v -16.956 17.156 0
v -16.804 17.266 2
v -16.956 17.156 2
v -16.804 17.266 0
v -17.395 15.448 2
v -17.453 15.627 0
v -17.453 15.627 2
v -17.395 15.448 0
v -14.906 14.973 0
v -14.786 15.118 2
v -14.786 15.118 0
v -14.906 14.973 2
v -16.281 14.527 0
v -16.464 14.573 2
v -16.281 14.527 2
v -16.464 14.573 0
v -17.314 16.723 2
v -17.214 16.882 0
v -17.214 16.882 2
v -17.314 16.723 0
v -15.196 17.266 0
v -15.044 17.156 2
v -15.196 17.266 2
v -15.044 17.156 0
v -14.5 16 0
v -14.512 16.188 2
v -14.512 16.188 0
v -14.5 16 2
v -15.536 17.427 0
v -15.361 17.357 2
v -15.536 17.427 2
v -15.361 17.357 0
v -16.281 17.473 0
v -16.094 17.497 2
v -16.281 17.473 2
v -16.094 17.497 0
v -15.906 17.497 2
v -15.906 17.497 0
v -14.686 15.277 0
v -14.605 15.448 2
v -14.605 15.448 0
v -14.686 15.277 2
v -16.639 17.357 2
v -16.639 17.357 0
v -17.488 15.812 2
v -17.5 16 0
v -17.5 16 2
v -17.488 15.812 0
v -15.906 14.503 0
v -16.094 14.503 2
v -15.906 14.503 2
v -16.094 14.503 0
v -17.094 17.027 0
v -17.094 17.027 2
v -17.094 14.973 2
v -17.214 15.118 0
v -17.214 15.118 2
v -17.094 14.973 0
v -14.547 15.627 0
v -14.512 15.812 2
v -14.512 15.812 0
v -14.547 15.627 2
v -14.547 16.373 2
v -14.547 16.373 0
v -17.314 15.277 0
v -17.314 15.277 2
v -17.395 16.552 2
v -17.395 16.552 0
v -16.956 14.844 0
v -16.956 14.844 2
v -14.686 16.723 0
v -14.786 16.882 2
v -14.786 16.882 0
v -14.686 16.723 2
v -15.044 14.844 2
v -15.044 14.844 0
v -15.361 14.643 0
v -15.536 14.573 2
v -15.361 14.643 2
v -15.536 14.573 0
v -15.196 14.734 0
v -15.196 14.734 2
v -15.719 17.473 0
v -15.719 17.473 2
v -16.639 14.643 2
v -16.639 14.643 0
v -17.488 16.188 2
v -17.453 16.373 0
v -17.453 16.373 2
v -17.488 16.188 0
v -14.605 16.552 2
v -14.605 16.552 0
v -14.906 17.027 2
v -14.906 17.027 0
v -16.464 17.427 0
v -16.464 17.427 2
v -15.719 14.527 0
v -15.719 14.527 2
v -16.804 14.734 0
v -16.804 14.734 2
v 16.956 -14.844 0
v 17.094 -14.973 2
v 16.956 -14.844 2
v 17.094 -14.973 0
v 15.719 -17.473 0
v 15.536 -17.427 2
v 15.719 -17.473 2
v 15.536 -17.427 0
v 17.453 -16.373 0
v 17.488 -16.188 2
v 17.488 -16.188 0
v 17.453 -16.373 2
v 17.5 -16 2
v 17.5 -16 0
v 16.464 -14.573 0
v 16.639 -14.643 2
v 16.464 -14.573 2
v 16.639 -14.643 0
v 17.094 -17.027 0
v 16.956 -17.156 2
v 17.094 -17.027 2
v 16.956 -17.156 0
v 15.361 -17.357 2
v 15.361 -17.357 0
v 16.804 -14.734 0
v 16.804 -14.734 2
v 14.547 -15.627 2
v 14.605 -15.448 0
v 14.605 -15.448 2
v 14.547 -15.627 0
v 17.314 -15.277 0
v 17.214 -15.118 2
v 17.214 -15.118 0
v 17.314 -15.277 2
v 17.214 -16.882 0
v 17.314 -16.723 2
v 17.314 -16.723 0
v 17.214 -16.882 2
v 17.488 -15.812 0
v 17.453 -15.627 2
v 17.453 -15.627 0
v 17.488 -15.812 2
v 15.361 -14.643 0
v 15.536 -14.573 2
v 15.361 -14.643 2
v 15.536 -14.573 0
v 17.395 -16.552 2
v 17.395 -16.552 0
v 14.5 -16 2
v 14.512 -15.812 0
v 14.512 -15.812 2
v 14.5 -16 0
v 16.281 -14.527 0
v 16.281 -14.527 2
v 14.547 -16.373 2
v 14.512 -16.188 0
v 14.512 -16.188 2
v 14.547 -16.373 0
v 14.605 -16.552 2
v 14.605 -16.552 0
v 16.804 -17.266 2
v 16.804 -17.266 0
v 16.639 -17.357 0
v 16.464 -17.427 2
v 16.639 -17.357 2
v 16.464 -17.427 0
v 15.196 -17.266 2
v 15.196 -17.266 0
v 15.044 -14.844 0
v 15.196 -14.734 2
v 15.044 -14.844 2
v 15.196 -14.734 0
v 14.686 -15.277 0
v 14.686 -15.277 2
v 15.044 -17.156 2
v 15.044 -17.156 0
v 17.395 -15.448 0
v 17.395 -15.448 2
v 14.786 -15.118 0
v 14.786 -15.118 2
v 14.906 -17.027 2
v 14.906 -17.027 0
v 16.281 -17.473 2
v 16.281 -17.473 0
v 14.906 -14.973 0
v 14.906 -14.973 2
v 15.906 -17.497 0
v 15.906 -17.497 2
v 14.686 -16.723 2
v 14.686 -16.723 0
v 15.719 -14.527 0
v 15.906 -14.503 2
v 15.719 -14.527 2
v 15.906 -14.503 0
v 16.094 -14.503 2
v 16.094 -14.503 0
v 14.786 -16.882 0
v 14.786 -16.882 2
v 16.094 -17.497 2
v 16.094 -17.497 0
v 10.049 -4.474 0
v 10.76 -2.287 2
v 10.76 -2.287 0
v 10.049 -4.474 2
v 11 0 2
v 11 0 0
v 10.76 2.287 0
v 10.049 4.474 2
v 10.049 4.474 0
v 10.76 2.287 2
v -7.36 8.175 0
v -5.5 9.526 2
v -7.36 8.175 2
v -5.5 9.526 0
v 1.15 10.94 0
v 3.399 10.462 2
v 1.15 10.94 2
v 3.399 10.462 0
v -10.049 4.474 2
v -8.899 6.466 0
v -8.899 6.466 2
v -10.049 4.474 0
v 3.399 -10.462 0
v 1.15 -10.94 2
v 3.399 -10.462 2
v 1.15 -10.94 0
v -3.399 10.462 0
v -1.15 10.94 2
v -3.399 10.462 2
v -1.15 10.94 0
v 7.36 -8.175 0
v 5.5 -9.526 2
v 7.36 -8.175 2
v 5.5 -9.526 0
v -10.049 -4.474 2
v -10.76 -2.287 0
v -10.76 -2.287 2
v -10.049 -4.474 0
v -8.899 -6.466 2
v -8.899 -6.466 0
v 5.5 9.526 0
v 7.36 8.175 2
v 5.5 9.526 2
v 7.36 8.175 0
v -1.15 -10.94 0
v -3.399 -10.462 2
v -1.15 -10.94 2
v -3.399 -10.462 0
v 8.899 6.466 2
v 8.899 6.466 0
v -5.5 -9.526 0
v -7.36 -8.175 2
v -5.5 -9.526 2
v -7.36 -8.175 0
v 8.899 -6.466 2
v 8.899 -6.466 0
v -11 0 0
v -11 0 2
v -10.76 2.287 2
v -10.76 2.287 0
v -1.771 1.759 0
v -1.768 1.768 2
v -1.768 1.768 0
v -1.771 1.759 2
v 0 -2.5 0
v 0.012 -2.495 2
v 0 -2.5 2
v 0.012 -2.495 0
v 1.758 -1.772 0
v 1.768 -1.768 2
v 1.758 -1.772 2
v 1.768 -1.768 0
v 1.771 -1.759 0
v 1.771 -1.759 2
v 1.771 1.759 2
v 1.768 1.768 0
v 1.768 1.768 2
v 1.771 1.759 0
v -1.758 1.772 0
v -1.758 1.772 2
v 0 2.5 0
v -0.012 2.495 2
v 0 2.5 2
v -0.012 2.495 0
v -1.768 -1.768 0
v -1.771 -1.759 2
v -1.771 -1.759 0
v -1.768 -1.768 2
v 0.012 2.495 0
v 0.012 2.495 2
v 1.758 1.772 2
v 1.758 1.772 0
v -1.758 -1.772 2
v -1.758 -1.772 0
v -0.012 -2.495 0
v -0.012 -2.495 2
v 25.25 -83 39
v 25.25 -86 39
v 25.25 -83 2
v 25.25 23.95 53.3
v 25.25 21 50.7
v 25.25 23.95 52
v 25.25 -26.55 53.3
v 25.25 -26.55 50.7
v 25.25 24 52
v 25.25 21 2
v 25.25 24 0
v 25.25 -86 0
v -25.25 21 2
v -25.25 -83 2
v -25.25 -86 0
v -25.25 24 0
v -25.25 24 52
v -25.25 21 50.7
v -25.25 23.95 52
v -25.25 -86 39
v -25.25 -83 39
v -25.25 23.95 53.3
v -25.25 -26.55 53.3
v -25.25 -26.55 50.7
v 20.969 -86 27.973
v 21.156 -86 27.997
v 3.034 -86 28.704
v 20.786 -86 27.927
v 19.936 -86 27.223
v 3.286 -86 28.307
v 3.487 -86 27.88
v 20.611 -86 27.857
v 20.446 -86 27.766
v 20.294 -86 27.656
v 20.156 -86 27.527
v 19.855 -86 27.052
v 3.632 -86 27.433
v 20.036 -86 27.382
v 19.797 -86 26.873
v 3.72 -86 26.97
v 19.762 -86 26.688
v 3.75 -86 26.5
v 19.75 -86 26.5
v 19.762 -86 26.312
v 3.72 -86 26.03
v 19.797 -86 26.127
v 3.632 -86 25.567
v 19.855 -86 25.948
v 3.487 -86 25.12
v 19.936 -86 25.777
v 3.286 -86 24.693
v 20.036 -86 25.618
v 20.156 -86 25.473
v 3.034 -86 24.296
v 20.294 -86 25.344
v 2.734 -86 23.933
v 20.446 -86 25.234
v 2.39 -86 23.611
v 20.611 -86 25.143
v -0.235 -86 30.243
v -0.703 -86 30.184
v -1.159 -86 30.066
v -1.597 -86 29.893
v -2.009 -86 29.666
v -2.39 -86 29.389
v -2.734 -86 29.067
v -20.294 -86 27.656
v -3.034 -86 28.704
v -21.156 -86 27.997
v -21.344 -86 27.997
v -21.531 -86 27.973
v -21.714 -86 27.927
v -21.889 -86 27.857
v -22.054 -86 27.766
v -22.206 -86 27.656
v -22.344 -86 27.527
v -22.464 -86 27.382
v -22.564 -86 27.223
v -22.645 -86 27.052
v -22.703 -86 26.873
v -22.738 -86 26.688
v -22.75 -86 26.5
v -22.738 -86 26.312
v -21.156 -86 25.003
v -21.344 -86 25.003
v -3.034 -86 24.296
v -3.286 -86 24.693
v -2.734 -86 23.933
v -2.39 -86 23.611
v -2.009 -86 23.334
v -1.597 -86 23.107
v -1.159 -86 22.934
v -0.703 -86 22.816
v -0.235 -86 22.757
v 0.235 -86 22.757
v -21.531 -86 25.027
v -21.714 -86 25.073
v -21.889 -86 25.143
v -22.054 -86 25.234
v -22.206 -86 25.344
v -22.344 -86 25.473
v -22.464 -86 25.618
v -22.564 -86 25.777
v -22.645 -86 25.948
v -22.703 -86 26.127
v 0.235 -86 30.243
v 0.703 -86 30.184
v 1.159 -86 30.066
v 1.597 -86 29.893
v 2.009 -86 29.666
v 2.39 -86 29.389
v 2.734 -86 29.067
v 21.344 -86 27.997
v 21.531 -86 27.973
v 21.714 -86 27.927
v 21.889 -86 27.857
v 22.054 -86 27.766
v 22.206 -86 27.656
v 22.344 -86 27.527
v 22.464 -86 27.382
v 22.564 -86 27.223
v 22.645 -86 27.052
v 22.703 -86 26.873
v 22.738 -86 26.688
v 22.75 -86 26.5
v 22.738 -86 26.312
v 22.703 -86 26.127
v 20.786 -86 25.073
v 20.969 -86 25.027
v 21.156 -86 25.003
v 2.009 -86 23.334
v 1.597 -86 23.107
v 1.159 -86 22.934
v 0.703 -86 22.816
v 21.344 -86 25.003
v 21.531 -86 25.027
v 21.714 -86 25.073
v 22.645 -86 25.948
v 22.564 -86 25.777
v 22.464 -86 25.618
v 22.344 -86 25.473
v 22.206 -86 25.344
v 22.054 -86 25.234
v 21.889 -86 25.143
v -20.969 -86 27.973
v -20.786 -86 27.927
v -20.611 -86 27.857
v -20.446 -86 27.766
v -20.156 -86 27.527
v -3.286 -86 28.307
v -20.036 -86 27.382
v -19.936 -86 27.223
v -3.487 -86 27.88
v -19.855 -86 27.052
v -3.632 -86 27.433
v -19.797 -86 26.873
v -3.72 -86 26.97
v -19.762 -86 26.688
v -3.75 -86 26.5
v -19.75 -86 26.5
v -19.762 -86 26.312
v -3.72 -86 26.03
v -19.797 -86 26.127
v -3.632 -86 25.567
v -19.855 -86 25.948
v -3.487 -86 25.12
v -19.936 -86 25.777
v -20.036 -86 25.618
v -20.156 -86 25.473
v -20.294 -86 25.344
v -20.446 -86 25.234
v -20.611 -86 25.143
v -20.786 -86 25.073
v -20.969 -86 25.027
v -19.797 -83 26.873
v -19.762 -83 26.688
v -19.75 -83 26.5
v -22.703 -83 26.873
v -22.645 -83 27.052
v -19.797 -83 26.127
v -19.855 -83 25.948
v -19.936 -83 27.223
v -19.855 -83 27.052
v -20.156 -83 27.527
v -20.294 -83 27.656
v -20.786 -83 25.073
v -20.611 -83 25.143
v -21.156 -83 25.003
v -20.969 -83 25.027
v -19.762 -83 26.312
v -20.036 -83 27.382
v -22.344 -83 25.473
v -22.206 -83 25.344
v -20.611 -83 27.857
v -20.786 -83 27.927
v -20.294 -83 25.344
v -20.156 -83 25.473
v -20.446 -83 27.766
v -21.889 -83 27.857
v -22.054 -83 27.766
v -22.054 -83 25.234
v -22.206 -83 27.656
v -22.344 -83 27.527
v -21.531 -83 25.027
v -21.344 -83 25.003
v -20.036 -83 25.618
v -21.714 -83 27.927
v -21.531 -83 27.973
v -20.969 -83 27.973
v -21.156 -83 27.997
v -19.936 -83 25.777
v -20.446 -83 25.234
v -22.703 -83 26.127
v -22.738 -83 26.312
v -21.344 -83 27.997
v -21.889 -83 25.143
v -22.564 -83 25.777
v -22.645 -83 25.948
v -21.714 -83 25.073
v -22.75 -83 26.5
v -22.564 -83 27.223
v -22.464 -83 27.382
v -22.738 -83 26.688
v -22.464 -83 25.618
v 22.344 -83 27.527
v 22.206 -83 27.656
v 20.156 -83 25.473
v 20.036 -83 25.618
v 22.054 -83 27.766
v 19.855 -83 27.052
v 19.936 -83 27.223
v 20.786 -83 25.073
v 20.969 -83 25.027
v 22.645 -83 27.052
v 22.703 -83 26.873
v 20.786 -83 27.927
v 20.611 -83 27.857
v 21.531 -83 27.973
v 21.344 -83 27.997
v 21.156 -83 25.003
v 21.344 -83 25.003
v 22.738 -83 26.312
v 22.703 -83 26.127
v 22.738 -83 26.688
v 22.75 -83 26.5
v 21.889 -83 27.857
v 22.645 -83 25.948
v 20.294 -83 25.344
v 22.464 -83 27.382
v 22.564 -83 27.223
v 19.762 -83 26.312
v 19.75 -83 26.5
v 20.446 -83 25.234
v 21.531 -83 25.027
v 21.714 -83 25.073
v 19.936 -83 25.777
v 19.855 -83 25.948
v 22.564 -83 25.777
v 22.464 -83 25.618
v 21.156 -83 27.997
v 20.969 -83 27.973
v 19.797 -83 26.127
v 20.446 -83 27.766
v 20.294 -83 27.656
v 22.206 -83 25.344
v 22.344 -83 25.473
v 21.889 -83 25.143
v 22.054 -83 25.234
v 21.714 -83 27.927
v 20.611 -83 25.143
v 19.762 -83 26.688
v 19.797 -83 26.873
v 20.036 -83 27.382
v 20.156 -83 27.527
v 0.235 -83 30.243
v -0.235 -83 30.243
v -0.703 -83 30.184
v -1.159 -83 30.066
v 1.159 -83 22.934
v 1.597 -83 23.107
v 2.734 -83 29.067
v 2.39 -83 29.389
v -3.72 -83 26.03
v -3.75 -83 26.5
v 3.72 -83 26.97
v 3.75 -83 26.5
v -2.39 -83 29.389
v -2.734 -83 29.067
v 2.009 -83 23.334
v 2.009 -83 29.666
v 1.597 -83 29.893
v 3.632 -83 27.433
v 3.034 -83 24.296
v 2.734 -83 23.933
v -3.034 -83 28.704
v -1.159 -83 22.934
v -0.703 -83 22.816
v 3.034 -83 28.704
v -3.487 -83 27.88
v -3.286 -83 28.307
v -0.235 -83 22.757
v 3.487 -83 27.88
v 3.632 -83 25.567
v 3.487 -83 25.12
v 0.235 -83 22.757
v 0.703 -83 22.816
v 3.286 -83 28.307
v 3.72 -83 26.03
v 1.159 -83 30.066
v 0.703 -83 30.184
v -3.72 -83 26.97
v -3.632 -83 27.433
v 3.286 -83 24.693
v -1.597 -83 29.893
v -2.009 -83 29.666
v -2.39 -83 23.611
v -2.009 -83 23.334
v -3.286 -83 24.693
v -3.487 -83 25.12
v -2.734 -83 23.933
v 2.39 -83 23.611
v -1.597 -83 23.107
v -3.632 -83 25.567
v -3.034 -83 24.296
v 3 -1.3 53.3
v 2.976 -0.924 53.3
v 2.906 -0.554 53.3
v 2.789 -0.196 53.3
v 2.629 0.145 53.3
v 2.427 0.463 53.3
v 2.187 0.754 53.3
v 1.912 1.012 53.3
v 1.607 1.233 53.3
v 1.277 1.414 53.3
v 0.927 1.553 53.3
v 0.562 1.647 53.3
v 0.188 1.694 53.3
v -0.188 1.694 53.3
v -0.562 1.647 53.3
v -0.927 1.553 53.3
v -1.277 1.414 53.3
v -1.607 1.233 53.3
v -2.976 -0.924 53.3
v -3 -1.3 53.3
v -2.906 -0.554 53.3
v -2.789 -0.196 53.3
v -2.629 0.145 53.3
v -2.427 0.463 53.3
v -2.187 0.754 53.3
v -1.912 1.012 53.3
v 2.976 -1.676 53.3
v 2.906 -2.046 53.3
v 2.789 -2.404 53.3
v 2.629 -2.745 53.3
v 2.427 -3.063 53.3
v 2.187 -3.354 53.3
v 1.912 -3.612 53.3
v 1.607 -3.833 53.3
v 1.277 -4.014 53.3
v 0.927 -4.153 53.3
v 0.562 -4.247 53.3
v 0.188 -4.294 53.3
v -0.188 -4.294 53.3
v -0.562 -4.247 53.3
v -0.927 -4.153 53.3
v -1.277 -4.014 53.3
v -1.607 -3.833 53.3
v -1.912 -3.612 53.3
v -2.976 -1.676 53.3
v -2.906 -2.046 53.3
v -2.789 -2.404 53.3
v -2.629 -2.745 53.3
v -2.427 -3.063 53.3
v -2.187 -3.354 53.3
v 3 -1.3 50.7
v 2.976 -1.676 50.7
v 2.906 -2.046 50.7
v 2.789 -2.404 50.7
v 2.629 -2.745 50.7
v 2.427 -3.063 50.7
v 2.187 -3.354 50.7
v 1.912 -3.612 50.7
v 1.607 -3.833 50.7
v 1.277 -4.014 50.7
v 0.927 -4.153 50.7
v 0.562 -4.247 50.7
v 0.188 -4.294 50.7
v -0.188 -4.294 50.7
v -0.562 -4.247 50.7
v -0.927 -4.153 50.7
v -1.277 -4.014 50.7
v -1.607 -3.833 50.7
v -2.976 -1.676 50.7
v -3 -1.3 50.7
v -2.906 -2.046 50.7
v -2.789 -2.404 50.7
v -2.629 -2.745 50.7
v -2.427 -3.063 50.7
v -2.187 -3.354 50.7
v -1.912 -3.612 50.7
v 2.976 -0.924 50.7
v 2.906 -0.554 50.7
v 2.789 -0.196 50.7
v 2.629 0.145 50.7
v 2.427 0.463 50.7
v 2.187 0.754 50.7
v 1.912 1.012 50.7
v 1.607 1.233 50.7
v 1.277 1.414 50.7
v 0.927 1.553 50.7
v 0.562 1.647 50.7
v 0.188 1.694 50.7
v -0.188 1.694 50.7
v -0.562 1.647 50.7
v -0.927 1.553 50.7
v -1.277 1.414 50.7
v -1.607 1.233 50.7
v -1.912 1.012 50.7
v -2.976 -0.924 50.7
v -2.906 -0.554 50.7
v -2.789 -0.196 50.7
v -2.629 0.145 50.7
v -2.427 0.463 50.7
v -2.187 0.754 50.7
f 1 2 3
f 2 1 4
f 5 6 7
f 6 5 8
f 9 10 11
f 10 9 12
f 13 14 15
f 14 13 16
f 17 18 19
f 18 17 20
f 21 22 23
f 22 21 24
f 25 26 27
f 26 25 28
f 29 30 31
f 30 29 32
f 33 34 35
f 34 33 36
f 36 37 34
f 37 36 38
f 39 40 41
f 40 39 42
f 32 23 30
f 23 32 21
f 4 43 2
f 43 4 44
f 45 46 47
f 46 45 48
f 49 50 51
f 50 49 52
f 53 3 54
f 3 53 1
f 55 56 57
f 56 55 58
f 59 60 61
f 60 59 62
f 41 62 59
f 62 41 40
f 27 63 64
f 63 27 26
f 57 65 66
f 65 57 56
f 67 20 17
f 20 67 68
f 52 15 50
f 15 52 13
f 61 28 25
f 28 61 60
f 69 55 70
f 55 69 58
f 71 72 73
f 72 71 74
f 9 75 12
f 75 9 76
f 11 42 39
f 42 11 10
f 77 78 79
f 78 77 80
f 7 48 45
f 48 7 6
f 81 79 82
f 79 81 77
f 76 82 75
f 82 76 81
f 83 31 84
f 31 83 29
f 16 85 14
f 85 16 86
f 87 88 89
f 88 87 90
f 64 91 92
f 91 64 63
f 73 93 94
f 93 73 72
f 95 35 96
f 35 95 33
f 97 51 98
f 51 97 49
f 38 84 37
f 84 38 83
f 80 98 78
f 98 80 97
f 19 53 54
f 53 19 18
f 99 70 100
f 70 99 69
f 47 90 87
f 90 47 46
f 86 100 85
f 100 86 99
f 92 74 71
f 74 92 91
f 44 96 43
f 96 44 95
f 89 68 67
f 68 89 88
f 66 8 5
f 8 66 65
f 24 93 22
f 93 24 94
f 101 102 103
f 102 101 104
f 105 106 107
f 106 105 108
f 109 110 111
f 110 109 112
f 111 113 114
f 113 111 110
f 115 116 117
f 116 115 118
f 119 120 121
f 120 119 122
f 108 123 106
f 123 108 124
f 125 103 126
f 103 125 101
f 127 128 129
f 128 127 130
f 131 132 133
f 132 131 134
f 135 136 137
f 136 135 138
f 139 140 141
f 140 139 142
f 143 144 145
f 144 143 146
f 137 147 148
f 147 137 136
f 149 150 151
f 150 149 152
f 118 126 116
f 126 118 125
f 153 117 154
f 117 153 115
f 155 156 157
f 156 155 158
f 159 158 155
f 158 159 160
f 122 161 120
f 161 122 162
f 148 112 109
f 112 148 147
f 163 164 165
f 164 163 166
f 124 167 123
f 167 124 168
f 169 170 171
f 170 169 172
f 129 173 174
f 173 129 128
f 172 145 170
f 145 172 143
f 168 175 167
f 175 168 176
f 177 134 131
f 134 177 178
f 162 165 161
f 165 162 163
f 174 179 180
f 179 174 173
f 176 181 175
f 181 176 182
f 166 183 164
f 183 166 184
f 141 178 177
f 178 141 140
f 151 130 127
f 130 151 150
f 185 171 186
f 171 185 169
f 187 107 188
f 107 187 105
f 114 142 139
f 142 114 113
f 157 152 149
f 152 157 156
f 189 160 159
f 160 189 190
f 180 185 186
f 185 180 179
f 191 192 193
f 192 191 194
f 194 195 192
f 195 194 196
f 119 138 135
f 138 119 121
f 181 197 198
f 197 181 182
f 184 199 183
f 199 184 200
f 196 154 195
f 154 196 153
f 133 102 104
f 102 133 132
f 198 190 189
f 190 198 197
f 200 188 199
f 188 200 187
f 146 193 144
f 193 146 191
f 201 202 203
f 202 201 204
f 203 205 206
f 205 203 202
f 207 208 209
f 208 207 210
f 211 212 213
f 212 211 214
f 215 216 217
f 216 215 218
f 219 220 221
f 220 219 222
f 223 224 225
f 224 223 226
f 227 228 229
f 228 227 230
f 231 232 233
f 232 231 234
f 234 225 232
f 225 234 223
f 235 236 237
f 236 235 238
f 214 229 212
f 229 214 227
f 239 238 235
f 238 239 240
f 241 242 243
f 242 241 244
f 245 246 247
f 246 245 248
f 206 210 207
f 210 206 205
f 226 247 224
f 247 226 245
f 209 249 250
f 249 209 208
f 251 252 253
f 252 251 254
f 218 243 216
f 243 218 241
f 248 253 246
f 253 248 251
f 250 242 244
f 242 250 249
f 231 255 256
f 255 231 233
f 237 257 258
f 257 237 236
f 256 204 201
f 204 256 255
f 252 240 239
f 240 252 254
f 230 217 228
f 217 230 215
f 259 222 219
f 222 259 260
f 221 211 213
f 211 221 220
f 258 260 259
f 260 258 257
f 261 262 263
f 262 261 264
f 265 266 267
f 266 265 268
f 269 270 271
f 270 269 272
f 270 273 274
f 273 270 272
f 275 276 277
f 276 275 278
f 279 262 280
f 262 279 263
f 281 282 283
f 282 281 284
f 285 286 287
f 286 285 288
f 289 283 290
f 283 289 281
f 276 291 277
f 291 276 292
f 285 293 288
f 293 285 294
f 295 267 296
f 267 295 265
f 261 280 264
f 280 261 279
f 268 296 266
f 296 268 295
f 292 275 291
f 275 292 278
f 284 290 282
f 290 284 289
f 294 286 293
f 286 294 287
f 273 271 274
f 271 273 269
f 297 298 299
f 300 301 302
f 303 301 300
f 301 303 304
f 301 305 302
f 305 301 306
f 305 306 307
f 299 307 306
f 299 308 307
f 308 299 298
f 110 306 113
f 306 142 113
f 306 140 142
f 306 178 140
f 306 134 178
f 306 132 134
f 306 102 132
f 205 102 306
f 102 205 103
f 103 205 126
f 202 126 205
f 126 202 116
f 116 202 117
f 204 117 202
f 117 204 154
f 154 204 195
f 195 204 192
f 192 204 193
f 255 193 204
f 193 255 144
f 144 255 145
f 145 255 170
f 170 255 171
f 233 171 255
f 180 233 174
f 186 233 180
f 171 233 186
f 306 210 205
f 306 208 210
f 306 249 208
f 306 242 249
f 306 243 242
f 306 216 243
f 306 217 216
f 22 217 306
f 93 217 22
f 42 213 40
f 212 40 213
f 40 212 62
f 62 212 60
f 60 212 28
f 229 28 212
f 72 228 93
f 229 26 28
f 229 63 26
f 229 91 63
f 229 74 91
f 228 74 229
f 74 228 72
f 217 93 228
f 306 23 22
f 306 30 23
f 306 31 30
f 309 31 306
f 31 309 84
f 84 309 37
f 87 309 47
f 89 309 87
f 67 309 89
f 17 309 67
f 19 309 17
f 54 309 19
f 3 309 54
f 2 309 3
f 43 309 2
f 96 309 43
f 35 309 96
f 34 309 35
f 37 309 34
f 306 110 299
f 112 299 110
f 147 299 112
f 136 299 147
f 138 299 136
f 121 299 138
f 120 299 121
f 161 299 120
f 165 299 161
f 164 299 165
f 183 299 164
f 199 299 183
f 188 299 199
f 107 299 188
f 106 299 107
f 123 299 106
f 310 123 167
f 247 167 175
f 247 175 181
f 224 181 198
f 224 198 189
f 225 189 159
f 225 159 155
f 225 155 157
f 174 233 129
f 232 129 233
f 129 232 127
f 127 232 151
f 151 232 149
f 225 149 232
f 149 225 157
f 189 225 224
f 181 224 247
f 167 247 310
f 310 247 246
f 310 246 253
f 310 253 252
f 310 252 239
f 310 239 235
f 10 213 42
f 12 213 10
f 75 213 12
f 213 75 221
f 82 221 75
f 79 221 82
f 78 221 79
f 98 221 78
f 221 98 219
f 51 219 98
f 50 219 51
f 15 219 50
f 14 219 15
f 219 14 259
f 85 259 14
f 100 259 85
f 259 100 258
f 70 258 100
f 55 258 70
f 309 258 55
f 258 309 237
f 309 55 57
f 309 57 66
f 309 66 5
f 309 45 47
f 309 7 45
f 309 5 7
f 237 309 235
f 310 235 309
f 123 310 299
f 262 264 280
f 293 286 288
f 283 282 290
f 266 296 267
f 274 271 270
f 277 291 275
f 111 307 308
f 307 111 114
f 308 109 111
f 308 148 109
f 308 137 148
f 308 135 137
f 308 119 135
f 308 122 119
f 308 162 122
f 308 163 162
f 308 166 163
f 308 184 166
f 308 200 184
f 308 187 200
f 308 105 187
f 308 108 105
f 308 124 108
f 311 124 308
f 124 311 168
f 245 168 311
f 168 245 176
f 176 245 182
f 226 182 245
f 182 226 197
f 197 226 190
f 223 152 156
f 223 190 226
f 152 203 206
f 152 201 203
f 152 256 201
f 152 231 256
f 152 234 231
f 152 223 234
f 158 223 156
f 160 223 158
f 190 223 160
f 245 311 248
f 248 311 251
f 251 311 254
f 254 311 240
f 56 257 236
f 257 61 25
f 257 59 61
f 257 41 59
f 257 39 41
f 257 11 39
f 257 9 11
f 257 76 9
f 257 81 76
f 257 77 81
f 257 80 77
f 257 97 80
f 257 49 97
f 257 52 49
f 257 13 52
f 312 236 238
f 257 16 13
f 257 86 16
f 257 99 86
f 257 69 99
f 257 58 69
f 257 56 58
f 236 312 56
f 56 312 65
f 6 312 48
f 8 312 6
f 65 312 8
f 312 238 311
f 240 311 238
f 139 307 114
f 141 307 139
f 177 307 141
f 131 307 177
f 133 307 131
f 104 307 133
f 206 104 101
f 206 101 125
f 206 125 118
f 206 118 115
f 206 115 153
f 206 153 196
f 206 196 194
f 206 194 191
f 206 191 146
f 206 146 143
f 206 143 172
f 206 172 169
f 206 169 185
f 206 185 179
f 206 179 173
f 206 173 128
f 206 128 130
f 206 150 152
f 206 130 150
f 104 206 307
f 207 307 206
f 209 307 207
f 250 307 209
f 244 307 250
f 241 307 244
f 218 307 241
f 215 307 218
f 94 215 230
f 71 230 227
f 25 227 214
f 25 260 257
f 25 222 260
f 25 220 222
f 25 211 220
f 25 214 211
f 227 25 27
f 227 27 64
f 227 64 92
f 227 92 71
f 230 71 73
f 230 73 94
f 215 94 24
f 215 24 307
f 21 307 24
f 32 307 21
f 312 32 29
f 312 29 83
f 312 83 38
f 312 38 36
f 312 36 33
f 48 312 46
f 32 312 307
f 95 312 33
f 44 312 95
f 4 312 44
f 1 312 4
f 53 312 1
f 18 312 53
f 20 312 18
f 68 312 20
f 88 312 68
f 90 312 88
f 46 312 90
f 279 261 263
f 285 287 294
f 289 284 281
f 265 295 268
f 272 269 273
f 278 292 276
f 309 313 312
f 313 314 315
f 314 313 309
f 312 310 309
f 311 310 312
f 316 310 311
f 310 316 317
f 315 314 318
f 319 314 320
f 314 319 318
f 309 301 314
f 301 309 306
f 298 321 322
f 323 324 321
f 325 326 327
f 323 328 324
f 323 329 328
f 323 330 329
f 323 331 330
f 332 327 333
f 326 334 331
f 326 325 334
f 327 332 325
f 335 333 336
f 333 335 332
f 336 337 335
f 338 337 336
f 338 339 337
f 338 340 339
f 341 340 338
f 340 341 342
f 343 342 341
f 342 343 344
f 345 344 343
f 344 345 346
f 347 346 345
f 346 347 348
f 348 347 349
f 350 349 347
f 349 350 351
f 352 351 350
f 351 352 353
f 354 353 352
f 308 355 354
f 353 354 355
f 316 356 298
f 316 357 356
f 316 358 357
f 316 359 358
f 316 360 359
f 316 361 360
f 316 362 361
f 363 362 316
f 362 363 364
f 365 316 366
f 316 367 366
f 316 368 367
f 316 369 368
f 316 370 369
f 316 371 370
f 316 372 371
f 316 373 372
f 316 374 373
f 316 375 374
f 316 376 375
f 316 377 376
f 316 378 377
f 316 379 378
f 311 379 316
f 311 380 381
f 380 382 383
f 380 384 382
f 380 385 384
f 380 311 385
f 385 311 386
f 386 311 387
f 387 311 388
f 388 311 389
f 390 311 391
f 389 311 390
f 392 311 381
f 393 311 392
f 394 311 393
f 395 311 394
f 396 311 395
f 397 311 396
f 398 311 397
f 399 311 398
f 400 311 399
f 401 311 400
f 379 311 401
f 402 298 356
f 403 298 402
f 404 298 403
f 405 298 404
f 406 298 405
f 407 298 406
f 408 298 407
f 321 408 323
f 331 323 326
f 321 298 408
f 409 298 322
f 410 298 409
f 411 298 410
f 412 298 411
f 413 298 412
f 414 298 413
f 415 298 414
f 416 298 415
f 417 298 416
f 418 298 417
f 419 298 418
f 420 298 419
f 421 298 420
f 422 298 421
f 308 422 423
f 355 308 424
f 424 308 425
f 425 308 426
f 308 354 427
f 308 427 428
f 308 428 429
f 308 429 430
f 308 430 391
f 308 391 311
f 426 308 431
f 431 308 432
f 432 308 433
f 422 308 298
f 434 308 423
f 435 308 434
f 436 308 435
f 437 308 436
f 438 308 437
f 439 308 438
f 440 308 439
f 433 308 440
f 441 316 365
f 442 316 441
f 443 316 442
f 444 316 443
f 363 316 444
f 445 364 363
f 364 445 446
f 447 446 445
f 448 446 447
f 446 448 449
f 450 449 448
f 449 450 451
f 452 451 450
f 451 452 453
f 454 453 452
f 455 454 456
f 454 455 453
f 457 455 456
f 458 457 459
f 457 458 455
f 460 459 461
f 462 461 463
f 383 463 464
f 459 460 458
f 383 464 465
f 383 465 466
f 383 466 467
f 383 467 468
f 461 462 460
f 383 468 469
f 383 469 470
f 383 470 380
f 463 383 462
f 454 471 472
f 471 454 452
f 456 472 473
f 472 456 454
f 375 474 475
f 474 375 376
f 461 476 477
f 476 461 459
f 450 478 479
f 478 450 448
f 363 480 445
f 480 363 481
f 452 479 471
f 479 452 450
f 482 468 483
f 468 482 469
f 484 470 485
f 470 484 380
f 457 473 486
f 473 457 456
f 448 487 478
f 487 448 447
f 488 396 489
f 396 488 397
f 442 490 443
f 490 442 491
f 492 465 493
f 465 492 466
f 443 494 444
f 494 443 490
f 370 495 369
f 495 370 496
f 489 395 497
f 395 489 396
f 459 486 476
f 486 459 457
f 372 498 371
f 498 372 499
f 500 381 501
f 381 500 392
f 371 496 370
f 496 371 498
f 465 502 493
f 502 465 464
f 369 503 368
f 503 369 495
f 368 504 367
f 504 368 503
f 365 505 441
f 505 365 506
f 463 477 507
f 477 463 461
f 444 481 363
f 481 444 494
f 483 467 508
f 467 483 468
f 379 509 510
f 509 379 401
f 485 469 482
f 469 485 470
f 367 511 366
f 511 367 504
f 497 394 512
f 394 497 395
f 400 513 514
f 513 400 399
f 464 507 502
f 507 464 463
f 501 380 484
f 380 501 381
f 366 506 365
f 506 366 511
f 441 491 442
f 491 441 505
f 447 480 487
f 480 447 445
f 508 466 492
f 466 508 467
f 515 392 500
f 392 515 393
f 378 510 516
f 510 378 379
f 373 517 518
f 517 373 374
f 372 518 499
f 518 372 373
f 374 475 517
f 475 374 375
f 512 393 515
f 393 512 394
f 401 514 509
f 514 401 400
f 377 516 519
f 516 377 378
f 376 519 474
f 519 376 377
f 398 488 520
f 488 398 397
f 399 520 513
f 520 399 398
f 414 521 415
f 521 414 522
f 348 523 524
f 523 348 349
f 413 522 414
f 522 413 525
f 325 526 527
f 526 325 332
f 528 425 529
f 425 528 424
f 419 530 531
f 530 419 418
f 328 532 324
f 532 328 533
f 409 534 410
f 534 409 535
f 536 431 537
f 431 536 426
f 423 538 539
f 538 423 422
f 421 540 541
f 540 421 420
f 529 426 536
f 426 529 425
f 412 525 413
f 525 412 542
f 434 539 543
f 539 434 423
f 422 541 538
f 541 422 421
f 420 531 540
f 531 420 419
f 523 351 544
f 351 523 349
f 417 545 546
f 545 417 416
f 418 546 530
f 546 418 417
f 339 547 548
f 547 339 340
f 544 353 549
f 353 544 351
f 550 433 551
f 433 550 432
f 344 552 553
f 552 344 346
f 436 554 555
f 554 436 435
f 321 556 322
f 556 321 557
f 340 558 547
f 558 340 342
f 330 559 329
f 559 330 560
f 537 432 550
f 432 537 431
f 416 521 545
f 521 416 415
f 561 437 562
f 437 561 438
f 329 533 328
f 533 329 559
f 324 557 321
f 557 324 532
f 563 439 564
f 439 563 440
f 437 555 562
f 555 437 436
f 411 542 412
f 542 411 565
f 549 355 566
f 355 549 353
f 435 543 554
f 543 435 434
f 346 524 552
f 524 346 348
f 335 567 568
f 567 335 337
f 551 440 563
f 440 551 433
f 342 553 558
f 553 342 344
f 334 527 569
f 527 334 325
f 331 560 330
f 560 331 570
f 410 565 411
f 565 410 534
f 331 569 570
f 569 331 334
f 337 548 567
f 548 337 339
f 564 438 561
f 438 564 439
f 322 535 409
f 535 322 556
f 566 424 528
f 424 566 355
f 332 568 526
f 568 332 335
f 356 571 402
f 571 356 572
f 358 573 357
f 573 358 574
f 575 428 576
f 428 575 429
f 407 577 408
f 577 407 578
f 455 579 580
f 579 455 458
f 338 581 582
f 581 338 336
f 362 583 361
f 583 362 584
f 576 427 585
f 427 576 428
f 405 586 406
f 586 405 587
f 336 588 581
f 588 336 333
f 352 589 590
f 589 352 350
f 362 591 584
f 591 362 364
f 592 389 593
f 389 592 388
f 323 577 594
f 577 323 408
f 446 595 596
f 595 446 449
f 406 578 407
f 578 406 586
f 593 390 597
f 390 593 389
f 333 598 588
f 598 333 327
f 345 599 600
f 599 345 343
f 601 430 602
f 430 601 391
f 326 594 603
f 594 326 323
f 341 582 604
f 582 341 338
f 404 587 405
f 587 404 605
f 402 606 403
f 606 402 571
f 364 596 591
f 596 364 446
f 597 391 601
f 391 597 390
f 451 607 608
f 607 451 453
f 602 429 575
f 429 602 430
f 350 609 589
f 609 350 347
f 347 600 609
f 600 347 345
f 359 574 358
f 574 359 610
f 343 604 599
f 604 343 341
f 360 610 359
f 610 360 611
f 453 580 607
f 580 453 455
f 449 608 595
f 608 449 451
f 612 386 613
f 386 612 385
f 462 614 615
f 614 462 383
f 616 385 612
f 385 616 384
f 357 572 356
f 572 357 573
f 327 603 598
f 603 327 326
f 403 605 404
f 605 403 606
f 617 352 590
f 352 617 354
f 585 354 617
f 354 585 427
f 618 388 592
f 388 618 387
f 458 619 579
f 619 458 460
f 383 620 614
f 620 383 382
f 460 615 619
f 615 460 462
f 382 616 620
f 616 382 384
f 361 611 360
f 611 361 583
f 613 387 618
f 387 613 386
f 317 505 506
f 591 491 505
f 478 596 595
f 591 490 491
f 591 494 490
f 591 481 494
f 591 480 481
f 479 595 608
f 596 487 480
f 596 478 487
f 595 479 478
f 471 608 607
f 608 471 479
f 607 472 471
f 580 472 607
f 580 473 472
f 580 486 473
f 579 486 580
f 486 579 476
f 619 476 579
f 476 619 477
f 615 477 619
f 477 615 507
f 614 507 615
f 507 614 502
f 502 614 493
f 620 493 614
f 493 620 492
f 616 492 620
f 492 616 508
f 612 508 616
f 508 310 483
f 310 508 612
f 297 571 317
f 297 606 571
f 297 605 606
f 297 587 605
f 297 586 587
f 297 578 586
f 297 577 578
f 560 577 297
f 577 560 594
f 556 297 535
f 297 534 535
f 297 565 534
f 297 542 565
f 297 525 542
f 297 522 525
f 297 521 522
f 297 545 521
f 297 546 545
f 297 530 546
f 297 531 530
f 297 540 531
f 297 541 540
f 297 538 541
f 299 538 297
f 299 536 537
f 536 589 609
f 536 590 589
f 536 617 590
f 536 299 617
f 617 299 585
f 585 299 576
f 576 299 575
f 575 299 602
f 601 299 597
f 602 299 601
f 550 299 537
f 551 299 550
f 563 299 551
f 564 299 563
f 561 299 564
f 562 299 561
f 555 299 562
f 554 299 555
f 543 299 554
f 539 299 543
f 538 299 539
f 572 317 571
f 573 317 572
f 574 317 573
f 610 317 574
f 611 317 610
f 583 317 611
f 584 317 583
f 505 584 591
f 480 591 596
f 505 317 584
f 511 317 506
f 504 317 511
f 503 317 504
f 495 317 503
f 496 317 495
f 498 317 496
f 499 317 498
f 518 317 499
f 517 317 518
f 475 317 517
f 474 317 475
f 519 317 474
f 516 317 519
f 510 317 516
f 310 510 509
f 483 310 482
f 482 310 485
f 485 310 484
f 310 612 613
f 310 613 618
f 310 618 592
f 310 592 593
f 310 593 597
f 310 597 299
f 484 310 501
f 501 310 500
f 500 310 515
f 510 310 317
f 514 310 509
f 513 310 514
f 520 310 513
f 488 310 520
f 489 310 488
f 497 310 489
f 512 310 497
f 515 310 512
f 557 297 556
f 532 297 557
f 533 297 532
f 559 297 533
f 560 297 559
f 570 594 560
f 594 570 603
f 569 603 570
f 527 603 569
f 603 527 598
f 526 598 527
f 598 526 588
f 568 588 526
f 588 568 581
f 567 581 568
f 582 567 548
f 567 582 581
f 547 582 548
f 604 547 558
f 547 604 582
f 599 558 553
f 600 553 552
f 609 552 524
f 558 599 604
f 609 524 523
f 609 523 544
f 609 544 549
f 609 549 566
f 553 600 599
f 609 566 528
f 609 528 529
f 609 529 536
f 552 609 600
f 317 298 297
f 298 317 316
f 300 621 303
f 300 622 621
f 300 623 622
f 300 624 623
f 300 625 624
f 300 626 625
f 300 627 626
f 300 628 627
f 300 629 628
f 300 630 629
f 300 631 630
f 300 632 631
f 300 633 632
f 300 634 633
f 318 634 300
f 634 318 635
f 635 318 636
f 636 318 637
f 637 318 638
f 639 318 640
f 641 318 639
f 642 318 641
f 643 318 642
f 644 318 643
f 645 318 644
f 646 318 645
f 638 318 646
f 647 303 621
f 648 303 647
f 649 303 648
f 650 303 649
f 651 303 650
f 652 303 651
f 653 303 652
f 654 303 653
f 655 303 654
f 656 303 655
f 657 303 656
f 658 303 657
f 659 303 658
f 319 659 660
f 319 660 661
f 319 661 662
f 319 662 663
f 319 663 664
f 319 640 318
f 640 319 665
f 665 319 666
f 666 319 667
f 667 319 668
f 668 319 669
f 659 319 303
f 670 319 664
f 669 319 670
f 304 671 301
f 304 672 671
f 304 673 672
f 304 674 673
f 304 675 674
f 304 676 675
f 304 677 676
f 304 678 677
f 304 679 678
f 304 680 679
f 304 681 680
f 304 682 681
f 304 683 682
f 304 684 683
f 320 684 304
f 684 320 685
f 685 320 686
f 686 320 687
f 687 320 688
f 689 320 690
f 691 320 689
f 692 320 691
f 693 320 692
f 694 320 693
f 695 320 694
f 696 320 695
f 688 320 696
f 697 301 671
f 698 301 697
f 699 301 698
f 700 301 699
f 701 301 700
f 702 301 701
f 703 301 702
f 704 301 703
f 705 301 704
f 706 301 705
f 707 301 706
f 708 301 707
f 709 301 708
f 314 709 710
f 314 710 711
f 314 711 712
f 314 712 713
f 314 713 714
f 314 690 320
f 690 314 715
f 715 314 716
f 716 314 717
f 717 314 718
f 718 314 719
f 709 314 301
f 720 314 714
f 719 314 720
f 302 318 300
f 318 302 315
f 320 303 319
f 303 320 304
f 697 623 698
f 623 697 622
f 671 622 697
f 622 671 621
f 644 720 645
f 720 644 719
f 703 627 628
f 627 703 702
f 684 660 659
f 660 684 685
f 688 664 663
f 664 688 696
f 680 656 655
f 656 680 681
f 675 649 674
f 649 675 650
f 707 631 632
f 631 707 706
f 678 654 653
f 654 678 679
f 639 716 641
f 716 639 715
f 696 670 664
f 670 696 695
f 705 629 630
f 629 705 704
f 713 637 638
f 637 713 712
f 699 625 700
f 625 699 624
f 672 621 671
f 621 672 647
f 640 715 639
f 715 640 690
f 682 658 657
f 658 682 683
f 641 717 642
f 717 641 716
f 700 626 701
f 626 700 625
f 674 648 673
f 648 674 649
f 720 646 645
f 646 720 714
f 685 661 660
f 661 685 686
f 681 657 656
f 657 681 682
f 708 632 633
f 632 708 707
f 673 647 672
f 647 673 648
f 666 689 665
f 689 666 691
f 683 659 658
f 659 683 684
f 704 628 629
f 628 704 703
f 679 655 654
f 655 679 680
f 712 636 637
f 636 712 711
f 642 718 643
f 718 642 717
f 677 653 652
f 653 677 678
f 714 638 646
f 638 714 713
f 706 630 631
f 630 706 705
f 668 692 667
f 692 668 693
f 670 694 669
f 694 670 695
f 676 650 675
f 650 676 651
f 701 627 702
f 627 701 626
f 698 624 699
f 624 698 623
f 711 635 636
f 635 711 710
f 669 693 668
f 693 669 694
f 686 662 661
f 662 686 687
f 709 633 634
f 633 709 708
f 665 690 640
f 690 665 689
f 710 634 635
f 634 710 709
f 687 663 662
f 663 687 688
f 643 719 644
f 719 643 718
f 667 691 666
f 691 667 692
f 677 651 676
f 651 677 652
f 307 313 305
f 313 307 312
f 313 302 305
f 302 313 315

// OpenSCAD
// file: I7PY-Q202-03.scad
module I7PY_stepper_motor(extrude=false)
{
    length = 42;  // Length of the stepper motor
    width = 42;  // Width of the stepper motor
    height = 23.3;   // Height of the stepper motor
    cut_depth = 3; // Size of the angled cuts
    screws_holes_diameter = 3;
    screws_holes_distance_side = 32;


    module inner_circle_and_shaft()
    {
        outer_diameter = 22;
        inner_diameter = extrude ? 5 : outer_diameter - 3.5;
        ic_height = extrude ? 20 : 1.4;

        translate([0,(height+ic_height)/2,0])
        {
            rotate([90,0,0])
            {
                difference()
                {
                    cylinder(h=ic_height, d=outer_diameter, center=true);
                    cylinder(h=ic_height, d=inner_diameter, center=true);
                }
            }
        }
        
        shaft_diameter = 5;
        shaft_height = 25;
        translate([0,(height+shaft_height)/2,0])
        rotate([90,0,0])
        cylinder(h=shaft_height,d=shaft_diameter,$fn=50);
    }



    // Function to create an angled cut
    module angled_cut()
    {
        rotate([0, 45, 0])
        translate([-cut_depth, -height/2, -cut_depth])
        cube([cut_depth * 2, height, cut_depth * 2]);
    }



    rotate([90,0,0])
    union()
    {
        // Main model
        color("black")
        difference() 
        {
            // Create the main cuboid
            cube([length, height, width], center=true);
            for (x = [-1, 1]) 
            {
                for (y = [-1, 1])    
                {
                    for (z = [-1, 1])
                    {
                        // corners angled cuts 
                        translate([x * length/2, y * height/2, z * width/2]) 
                        {
                              angled_cut();
                        }
                        
                        // screws holes
                        translate([x * screws_holes_distance_side/2, 0, z * screws_holes_distance_side/2])
                        {
                            rotate([90,0,0])
                            cylinder(h=height, d=screws_holes_diameter, center=true, $fn=50);
                        }
                    }
                }
            }
        }
        if (extrude)
        {
            for (x_y = [[-1, -1],[1,1]]) 
            {
                // extrude screw holes
                translate([x_y[0] * screws_holes_distance_side/2, 
                           0,
                           x_y[1] * screws_holes_distance_side/2])
                        {
                            rotate([90,0,0])
                            cylinder(h=height*3, d=screws_holes_diameter, center=true, $fn=50);
                        }
                }
        }

        color("gray")
        inner_circle_and_shaft();
    }
}
I7PY_stepper_motor();
// main file
use <I7PY-Q202-03.scad>
module epson_stepper_motor_template()
{
    shaft_diameter = 7.5;
    shaft_height = 20;

    screw_hole_diameter = 3;
    screw_holes_distance = 42.5;

    cylinder(h=shaft_height,d=shaft_diameter, center=true, $fn=50);

    for (x = [-1, 1])
    {
        translate([x * screw_holes_distance/2,0,0])
        cylinder(h=shaft_height, d=screw_hole_diameter, center=true, $fn=50);
    }
}

epson_motor_outer_diameter = 25;
epson_relative_height = 26.5;



planes_height=2;
distance_to_side_stepper_motor = 86;
i7py_motor_side  = 42;
margin = 8.5;
i7py_motor_height = 23.3;

xy_plane_base_size = [i7py_motor_side + margin,
                      i7py_motor_side/2 + distance_to_side_stepper_motor,
                      planes_height];

xy_plane_support_epson_motor_size = [i7py_motor_side + margin,
                                     epson_relative_height + epson_motor_outer_diameter/2,
                                     planes_height+1];



union()
{
    difference()
    {
        translate([0,
                   i7py_motor_side/2-xy_plane_base_size[1]/2,
                   planes_height/2])
        cube(xy_plane_base_size, center=true);

        //epson_stepper_motor_template();
        translate([0,0,-i7py_motor_height/2])
        I7PY_stepper_motor(extrude=true);
    }

    difference()
    {
        translate([0,
                   xy_plane_support_epson_motor_size[2]/2+i7py_motor_side/2-xy_plane_base_size[1],
                   xy_plane_support_epson_motor_size[1]/2])
        rotate([90,0,0])
        cube(xy_plane_support_epson_motor_size, center=true);

        translate([0,
                   xy_plane_support_epson_motor_size[2]/2+i7py_motor_side/2-xy_plane_base_size[1],
                   epson_relative_height])
        rotate([90,0,0])
        epson_stepper_motor_template();
    }
}


    laser_diameter = 6;
    laser_height = 52;
    wall_h = 2.6;

    laser_support_plane_1_size = [i7py_motor_side + margin,
                                  i7py_motor_side + margin,
                                  wall_h];
        translate([0,
                   -wall_h/2,
                   laser_height])
        difference()
        {
            cube(laser_support_plane_1_size, center=true);
            cylinder(h=30, d=laser_diameter,center=true, $fn=50);
        }


laser_support_plane_2_size = [i7py_motor_side + margin, 
                             laser_height,
                             3];
translate([0,
           (i7py_motor_side +laser_support_plane_2_size[2])/2,
           laser_height/2])
rotate([90,0,0])        
cube(laser_support_plane_2_size, center=true);
